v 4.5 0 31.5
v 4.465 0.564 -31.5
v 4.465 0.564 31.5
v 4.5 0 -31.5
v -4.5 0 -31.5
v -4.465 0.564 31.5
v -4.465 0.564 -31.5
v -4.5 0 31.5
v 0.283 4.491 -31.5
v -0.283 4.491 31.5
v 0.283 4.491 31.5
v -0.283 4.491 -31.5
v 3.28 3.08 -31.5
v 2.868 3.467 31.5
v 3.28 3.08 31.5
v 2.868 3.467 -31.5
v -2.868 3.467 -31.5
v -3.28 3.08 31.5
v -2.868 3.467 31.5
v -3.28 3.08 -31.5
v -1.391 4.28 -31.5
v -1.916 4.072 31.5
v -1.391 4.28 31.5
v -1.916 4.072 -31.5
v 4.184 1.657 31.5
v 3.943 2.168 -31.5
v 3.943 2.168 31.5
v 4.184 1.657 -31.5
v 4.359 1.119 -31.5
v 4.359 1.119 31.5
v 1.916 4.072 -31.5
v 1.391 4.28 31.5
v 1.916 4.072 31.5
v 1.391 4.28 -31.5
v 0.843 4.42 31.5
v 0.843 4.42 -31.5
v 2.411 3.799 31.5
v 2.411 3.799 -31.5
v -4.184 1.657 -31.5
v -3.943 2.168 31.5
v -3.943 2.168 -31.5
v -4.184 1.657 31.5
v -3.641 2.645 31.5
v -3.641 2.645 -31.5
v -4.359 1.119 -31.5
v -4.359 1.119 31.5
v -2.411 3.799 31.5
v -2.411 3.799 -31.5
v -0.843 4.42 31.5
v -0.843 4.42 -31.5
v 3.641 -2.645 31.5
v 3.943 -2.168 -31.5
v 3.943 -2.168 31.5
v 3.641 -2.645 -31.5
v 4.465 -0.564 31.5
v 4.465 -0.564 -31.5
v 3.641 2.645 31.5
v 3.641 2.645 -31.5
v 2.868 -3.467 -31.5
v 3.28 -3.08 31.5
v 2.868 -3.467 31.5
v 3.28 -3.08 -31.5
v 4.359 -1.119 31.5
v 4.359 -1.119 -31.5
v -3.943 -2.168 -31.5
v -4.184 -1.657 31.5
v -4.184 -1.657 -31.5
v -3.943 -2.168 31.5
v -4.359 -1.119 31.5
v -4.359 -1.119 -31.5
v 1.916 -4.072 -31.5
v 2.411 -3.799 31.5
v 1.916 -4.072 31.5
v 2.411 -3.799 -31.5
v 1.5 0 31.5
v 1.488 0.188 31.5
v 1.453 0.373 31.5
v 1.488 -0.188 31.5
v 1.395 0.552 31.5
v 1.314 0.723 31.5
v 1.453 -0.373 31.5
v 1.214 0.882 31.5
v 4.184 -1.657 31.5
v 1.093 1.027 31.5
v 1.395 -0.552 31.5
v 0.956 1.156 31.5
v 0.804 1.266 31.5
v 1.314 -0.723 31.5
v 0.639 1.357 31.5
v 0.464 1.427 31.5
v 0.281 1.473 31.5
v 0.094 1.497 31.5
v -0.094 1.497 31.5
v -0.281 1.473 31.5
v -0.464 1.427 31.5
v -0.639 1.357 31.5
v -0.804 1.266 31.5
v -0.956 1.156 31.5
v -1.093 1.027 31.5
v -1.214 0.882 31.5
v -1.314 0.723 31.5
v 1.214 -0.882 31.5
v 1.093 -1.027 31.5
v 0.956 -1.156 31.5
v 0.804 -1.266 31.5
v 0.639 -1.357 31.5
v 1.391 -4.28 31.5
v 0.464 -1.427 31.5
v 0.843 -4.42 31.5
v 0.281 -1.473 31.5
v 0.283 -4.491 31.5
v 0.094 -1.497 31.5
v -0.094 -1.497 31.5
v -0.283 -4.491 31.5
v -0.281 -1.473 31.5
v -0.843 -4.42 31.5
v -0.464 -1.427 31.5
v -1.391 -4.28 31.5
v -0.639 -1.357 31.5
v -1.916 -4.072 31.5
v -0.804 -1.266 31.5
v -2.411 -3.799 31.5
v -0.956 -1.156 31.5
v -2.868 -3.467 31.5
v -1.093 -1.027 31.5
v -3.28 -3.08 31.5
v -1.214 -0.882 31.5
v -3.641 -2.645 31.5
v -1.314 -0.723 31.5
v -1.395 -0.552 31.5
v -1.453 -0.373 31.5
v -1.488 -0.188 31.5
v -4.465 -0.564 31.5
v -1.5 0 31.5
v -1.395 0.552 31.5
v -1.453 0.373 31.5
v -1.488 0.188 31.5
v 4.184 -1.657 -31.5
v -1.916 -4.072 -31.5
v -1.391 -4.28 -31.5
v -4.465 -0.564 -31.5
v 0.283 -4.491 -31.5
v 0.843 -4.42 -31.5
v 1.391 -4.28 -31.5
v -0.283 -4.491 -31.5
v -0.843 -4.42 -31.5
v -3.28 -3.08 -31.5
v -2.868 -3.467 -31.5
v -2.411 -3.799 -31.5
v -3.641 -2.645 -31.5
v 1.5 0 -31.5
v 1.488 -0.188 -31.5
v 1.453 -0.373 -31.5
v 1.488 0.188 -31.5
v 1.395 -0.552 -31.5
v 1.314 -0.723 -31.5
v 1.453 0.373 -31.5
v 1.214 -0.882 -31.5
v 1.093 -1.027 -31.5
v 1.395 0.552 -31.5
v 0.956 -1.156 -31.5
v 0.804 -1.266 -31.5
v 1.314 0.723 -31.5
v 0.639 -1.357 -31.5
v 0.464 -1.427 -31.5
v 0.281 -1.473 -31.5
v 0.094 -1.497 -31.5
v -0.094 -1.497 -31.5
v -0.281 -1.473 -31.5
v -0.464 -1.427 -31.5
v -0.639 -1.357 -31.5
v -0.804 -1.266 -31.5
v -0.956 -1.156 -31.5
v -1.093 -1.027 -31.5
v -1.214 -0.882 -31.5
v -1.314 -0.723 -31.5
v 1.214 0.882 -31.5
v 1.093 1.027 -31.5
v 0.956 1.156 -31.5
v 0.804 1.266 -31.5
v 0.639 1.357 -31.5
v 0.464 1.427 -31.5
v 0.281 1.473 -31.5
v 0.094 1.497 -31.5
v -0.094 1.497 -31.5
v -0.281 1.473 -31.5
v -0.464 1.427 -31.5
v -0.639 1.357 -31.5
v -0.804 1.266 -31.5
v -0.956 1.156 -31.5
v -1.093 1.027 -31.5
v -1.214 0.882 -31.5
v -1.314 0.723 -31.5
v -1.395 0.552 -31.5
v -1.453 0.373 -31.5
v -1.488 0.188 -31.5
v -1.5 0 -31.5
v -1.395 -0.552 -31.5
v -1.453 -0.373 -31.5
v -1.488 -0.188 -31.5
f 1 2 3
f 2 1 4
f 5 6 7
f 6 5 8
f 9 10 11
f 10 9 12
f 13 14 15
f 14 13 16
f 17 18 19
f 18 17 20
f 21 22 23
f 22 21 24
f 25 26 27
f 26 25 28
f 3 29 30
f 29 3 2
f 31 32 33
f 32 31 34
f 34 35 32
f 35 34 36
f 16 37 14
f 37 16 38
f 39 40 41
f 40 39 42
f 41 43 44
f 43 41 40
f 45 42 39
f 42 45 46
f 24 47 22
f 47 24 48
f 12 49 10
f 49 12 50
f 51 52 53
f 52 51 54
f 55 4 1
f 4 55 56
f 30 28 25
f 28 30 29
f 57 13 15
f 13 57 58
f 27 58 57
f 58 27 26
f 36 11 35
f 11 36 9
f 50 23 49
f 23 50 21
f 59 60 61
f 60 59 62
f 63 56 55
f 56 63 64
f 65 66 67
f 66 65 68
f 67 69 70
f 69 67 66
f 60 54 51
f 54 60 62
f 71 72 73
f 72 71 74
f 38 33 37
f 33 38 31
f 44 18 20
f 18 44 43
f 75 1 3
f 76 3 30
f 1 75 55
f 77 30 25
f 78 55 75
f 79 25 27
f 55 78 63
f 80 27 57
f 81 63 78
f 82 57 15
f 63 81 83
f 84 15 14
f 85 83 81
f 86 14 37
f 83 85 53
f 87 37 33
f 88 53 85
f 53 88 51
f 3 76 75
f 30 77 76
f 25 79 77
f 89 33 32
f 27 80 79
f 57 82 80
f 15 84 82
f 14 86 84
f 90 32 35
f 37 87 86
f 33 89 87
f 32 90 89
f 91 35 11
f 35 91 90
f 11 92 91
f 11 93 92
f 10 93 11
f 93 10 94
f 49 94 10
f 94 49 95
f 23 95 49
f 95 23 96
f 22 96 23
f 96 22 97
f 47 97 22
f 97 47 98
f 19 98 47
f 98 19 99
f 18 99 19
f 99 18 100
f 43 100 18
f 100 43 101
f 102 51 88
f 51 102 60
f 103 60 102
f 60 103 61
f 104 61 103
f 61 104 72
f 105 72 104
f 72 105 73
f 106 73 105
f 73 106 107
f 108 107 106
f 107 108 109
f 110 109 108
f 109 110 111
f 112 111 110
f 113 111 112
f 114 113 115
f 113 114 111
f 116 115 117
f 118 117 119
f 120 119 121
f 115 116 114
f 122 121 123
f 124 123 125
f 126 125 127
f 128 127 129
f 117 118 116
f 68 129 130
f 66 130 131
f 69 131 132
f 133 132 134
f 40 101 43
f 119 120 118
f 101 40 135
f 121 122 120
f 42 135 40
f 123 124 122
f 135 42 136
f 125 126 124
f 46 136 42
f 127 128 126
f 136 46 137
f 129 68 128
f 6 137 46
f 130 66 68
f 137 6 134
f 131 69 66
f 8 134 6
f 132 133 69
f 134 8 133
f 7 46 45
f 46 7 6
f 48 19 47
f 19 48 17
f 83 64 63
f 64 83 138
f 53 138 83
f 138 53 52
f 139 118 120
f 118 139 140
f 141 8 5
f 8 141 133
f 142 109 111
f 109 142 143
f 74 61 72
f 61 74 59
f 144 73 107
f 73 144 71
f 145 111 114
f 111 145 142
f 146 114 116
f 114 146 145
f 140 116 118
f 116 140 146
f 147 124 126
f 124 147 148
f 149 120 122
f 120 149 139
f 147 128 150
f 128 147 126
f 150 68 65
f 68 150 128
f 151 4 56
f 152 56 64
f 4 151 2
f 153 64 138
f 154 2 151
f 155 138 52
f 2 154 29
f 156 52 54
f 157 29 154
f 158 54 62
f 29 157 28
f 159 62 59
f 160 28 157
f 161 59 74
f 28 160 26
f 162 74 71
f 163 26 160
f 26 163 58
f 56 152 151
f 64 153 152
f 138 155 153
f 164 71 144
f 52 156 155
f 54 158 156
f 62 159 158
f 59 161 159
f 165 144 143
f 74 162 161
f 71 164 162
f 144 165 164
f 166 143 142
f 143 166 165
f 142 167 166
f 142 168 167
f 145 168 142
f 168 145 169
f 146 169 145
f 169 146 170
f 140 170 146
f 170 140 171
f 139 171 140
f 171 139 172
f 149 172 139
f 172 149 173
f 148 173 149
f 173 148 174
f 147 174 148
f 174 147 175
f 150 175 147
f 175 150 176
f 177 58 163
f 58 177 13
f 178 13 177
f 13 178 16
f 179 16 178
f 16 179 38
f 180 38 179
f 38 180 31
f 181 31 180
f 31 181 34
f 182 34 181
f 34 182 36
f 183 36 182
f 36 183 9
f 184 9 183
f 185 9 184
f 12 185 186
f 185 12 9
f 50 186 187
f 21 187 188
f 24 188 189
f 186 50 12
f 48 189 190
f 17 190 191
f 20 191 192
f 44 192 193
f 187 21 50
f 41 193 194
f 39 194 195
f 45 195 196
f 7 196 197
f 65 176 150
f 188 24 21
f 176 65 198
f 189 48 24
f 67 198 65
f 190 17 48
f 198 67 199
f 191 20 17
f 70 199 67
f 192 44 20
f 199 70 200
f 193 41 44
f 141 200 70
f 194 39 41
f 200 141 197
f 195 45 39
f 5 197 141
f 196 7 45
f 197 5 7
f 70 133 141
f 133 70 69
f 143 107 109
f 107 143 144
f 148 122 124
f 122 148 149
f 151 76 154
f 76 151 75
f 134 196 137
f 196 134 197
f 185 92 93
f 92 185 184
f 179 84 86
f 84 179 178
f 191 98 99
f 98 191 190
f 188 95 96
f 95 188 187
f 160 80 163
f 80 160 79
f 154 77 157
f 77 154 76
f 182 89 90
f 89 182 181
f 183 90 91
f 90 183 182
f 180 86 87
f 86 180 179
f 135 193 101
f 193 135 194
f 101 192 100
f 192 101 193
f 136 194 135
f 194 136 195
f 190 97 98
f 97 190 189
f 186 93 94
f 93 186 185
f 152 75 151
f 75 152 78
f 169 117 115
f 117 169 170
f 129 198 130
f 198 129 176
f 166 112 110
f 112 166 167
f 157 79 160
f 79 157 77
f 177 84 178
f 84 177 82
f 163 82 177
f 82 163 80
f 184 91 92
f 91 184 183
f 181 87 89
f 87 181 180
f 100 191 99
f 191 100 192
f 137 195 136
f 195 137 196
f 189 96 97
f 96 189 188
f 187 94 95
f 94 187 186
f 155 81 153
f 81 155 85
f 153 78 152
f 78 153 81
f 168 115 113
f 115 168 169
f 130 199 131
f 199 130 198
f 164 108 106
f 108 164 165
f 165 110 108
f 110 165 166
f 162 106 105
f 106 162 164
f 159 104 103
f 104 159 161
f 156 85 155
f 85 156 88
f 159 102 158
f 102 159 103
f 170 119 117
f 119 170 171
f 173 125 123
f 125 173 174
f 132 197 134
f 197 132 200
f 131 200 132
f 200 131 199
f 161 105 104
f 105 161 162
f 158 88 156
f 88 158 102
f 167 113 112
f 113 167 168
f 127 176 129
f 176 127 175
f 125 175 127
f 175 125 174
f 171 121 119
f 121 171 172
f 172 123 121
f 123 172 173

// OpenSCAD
$fn = 50;


difference() {
	union() {
		translate(v = [0, 0, -31.5000000000]) {
			cylinder(h = 63, r = 4.5000000000);
		}
	}
	union() {
		translate(v = [0, 0, -100.0000000000]) {
			cylinder(h = 200, r = 1.5000000000);
		}
	}
}
